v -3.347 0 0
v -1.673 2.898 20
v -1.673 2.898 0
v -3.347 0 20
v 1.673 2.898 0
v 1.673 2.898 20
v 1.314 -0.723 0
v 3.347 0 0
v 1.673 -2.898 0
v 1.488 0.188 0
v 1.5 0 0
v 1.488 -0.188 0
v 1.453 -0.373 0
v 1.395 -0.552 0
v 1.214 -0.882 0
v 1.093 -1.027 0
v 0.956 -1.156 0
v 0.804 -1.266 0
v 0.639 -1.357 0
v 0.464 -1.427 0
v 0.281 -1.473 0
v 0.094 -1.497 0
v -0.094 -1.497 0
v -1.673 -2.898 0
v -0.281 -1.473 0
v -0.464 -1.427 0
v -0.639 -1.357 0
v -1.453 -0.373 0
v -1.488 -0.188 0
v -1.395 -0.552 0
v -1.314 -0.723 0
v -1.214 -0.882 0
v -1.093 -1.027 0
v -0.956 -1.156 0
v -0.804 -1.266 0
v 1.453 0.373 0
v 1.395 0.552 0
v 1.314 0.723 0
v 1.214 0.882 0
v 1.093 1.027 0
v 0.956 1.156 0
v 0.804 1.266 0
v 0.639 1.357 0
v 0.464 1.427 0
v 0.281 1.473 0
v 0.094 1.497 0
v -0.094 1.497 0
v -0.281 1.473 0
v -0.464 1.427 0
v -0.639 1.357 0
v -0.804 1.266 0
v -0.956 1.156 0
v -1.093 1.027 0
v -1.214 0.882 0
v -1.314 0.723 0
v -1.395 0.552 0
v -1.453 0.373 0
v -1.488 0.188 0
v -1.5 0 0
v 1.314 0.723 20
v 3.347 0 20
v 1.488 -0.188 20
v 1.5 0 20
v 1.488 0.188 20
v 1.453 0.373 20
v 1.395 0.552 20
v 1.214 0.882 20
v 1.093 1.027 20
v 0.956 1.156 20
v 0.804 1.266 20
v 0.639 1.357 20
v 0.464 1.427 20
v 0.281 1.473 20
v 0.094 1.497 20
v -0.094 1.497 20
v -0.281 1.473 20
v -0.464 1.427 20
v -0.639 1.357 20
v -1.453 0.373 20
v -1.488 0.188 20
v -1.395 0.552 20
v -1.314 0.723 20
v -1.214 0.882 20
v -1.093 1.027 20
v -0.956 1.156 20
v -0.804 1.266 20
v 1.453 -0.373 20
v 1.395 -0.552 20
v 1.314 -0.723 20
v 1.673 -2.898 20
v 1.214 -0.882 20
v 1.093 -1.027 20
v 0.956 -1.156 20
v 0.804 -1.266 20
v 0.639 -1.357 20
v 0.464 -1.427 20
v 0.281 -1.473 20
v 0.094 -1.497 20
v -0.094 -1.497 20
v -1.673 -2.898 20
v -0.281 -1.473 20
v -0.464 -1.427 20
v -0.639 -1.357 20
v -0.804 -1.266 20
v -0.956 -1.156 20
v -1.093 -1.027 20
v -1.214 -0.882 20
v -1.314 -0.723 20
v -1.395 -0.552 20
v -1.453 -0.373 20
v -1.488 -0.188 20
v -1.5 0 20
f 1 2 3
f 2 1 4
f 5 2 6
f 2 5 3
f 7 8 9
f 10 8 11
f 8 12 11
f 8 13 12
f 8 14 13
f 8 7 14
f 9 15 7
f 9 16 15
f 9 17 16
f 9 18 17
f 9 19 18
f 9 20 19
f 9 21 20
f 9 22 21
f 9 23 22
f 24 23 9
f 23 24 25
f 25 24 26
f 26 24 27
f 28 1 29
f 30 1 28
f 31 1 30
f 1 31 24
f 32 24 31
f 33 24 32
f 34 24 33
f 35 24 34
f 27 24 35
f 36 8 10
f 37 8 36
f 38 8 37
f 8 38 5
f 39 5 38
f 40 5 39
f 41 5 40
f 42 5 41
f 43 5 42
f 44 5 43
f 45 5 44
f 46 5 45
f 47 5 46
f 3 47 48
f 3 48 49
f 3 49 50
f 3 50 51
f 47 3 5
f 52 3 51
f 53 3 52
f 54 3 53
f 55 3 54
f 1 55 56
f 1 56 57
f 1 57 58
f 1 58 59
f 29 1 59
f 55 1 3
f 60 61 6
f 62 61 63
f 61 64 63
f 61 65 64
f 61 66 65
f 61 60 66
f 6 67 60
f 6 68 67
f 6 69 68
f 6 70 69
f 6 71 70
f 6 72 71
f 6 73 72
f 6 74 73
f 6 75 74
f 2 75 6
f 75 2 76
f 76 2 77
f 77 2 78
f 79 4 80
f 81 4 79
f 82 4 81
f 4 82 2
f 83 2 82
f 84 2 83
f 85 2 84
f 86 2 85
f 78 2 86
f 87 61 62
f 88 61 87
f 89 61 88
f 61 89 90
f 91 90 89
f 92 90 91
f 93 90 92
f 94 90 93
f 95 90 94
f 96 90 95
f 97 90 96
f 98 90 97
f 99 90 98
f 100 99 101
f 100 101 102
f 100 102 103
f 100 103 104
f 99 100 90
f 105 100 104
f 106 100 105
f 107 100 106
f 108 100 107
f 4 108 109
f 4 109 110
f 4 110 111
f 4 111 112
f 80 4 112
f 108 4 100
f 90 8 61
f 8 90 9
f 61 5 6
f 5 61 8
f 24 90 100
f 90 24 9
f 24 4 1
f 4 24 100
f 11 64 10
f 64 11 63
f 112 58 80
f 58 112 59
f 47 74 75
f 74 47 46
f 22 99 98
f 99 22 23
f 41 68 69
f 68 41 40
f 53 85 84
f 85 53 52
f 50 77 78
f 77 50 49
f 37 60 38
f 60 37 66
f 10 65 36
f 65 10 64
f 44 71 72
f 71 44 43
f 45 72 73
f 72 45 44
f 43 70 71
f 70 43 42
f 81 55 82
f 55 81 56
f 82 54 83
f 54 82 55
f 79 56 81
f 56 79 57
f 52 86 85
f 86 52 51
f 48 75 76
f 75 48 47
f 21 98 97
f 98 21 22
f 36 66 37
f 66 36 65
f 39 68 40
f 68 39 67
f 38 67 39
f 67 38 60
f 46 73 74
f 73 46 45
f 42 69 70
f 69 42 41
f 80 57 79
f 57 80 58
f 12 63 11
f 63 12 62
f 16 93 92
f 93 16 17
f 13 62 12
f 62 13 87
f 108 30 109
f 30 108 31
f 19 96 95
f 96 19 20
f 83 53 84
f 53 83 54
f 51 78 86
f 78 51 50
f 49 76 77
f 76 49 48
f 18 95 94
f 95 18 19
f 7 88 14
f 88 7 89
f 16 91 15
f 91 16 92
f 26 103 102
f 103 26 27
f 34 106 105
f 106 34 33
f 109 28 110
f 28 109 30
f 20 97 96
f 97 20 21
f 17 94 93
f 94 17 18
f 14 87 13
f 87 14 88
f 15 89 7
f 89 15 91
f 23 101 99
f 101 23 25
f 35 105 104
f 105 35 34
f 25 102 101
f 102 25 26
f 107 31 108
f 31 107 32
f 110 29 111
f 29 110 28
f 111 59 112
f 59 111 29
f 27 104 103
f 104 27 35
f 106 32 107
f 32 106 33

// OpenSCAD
$fn = 50;


difference() {
	union() {
		translate(v = [0, 0, 0]) {
			rotate(a = [0, 0, 0]) {
				translate(v = [0, 0, 0]) {
					rotate(a = [0, 0, 0]) {
						linear_extrude(height = 20) {
							polygon(points = [[3.3466000000, 0.0000000000], [1.6733000000, 2.8982406163], [-1.6733000000, 2.8982406163], [-3.3466000000, 0.0000000000], [-1.6733000000, -2.8982406163], [1.6733000000, -2.8982406163]]);
						}
					}
				}
			}
		}
	}
	union() {
		translate(v = [0, 0, 0]) {
			rotate(a = [0, 0, 0]) {
				cylinder(h = 20, r = 1.5000000000);
			}
		}
	}
}
